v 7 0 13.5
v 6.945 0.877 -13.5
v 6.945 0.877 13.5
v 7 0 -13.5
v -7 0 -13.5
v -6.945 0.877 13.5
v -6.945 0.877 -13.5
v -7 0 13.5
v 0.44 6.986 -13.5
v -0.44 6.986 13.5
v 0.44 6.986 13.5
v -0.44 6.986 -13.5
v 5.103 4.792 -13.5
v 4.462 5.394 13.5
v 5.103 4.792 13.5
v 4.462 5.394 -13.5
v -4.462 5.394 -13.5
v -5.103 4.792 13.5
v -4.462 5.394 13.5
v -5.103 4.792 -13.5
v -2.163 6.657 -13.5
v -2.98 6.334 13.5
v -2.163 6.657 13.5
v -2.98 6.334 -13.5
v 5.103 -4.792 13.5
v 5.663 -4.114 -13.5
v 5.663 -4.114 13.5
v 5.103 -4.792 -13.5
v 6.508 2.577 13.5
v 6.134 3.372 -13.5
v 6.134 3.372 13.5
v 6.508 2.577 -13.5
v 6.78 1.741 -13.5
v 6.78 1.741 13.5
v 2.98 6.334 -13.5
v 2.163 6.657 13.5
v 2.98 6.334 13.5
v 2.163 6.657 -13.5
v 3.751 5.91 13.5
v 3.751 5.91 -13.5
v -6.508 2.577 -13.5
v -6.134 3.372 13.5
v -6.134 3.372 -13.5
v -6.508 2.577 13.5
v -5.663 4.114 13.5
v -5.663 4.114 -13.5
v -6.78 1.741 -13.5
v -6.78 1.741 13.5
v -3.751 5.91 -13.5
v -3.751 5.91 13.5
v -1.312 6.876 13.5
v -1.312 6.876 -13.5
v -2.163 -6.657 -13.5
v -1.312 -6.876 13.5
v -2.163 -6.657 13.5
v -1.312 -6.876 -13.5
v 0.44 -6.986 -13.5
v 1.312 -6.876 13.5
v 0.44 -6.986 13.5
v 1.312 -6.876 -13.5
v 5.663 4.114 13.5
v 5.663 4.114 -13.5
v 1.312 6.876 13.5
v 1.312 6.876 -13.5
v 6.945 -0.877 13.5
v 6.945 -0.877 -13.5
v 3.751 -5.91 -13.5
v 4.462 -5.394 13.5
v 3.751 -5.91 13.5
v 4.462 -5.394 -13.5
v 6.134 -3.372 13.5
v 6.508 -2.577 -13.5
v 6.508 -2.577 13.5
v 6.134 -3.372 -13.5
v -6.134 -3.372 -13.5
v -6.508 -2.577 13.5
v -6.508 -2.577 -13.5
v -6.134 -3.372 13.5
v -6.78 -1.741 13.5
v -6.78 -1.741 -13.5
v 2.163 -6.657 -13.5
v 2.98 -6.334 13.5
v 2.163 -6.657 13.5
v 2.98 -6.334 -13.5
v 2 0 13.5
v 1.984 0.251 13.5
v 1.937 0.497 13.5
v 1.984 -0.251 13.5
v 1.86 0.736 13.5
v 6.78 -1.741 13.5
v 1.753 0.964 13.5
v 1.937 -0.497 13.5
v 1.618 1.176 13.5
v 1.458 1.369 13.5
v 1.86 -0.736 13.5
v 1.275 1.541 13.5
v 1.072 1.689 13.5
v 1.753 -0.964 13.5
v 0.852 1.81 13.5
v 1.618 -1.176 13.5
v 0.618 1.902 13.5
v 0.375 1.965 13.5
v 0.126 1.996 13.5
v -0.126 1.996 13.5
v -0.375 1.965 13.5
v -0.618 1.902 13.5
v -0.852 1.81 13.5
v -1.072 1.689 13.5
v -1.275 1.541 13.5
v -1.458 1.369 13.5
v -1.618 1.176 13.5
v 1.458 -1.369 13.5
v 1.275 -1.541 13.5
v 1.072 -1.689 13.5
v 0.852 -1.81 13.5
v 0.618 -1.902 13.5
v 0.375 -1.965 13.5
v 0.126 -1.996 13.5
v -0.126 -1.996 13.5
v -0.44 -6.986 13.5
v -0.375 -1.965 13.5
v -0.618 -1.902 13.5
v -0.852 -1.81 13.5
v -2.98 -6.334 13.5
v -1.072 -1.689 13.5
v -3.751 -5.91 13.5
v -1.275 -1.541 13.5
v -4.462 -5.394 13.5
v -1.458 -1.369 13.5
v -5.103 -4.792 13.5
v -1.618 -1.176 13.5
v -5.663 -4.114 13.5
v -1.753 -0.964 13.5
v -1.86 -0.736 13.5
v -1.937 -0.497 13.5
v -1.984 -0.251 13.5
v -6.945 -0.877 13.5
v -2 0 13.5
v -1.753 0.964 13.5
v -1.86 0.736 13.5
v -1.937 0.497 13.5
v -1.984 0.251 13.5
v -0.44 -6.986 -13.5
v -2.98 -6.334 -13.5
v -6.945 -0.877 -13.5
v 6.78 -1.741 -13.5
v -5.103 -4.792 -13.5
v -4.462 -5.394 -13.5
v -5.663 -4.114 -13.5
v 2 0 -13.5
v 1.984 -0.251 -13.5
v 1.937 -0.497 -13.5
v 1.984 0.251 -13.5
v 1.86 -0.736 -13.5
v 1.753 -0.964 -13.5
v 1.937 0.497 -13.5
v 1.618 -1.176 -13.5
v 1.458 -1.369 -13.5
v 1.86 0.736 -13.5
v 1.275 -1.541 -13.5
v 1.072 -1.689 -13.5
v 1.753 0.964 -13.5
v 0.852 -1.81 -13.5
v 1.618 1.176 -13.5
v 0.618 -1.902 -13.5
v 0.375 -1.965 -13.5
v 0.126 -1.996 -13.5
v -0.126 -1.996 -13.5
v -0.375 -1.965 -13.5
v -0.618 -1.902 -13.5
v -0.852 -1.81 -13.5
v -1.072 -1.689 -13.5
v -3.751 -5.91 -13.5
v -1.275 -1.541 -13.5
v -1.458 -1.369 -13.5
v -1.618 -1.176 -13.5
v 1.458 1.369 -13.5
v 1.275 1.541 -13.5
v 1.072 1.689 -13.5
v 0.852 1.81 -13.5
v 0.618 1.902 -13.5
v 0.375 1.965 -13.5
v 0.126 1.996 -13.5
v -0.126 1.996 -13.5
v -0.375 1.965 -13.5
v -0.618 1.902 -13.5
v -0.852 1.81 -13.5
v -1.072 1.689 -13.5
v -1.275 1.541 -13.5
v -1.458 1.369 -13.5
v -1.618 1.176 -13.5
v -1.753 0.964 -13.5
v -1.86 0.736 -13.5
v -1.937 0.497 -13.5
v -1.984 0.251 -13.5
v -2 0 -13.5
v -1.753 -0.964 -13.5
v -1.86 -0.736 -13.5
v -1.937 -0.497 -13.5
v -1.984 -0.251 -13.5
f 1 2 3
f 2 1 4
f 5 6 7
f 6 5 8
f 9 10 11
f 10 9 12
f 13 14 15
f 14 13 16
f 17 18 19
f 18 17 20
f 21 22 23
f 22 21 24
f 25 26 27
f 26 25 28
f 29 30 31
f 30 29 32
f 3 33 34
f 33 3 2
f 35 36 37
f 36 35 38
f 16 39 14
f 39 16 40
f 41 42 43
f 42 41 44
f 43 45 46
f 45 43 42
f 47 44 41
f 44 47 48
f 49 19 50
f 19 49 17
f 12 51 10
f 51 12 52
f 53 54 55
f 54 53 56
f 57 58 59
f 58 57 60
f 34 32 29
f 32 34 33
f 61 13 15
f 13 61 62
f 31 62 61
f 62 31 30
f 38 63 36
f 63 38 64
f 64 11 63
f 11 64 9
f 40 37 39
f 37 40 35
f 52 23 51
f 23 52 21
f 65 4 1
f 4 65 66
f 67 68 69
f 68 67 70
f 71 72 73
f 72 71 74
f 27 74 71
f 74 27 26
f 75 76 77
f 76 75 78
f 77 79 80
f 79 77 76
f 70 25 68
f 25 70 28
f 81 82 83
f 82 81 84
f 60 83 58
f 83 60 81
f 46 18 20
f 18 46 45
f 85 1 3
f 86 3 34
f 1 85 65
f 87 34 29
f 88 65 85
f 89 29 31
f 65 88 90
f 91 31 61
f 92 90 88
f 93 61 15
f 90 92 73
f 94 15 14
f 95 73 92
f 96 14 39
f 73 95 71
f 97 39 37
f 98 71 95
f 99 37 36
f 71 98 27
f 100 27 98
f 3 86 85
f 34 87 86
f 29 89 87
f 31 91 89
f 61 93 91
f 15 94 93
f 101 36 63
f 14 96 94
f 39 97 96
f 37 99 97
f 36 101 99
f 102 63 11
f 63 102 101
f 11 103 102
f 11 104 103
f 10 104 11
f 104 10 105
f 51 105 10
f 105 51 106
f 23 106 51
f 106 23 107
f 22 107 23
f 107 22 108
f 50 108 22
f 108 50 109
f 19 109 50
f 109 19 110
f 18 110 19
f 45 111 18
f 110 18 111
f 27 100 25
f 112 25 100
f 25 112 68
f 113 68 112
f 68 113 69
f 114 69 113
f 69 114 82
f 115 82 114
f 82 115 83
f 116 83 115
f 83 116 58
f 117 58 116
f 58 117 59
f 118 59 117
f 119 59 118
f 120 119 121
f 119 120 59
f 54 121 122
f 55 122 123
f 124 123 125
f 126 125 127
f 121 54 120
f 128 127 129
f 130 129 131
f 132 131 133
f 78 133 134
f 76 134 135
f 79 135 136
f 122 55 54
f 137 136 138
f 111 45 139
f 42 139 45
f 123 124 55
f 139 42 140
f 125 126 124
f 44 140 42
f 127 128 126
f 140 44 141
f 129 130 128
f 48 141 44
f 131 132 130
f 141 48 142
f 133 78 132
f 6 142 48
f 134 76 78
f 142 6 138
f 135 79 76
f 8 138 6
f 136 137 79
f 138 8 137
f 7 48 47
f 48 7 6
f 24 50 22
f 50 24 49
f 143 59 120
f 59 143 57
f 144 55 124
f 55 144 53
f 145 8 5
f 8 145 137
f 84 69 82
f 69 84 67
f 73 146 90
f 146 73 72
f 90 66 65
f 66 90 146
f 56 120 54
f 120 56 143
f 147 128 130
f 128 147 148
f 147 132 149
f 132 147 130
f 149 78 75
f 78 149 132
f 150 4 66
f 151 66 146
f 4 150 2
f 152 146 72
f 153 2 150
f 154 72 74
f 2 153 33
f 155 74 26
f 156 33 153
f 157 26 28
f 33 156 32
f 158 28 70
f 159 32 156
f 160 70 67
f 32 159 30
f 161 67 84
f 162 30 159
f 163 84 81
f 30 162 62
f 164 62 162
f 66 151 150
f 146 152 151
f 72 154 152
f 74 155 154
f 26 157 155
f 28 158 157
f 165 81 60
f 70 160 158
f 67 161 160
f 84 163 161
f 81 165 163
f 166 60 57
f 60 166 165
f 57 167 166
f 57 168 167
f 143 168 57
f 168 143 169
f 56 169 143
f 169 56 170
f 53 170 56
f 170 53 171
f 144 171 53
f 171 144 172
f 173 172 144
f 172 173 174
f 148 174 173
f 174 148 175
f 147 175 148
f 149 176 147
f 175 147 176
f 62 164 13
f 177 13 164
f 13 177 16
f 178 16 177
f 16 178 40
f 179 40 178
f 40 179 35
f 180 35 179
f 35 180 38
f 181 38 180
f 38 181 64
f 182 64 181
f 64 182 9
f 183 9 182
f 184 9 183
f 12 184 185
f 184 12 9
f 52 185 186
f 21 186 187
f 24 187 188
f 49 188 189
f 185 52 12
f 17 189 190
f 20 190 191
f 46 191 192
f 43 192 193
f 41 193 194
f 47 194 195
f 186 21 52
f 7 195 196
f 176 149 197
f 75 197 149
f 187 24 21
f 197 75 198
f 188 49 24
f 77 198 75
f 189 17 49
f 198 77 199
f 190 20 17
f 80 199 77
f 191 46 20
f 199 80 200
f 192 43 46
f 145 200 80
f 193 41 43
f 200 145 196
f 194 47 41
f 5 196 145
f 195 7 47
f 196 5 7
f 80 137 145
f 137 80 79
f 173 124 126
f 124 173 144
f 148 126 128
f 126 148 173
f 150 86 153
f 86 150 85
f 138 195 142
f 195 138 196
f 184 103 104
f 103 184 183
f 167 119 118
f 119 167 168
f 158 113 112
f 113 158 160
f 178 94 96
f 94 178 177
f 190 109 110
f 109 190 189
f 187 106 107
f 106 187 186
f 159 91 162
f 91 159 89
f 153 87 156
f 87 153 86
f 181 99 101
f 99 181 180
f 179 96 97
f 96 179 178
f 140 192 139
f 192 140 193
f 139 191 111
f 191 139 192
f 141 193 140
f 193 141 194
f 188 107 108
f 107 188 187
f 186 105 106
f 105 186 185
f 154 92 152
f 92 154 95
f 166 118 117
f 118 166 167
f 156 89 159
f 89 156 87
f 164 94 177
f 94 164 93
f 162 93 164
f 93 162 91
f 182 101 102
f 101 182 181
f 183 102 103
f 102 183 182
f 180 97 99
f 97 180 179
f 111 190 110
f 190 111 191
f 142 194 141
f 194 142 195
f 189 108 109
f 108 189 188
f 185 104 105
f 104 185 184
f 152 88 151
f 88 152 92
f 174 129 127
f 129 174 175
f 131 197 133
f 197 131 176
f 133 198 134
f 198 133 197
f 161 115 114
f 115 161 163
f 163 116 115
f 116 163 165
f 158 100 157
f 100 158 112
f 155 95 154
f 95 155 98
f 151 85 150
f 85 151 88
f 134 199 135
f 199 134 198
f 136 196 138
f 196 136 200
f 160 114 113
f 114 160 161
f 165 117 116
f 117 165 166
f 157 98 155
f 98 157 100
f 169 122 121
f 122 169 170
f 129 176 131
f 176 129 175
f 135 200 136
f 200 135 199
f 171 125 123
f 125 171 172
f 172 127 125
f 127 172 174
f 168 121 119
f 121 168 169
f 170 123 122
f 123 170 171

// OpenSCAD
$fn = 50;


difference() {
	union() {
		translate(v = [0, 0, -13.5000000000]) {
			cylinder(h = 27, r = 7.0000000000);
		}
	}
	union() {
		translate(v = [0, 0, -100.0000000000]) {
			cylinder(h = 200, r = 2.0000000000);
		}
	}
}
